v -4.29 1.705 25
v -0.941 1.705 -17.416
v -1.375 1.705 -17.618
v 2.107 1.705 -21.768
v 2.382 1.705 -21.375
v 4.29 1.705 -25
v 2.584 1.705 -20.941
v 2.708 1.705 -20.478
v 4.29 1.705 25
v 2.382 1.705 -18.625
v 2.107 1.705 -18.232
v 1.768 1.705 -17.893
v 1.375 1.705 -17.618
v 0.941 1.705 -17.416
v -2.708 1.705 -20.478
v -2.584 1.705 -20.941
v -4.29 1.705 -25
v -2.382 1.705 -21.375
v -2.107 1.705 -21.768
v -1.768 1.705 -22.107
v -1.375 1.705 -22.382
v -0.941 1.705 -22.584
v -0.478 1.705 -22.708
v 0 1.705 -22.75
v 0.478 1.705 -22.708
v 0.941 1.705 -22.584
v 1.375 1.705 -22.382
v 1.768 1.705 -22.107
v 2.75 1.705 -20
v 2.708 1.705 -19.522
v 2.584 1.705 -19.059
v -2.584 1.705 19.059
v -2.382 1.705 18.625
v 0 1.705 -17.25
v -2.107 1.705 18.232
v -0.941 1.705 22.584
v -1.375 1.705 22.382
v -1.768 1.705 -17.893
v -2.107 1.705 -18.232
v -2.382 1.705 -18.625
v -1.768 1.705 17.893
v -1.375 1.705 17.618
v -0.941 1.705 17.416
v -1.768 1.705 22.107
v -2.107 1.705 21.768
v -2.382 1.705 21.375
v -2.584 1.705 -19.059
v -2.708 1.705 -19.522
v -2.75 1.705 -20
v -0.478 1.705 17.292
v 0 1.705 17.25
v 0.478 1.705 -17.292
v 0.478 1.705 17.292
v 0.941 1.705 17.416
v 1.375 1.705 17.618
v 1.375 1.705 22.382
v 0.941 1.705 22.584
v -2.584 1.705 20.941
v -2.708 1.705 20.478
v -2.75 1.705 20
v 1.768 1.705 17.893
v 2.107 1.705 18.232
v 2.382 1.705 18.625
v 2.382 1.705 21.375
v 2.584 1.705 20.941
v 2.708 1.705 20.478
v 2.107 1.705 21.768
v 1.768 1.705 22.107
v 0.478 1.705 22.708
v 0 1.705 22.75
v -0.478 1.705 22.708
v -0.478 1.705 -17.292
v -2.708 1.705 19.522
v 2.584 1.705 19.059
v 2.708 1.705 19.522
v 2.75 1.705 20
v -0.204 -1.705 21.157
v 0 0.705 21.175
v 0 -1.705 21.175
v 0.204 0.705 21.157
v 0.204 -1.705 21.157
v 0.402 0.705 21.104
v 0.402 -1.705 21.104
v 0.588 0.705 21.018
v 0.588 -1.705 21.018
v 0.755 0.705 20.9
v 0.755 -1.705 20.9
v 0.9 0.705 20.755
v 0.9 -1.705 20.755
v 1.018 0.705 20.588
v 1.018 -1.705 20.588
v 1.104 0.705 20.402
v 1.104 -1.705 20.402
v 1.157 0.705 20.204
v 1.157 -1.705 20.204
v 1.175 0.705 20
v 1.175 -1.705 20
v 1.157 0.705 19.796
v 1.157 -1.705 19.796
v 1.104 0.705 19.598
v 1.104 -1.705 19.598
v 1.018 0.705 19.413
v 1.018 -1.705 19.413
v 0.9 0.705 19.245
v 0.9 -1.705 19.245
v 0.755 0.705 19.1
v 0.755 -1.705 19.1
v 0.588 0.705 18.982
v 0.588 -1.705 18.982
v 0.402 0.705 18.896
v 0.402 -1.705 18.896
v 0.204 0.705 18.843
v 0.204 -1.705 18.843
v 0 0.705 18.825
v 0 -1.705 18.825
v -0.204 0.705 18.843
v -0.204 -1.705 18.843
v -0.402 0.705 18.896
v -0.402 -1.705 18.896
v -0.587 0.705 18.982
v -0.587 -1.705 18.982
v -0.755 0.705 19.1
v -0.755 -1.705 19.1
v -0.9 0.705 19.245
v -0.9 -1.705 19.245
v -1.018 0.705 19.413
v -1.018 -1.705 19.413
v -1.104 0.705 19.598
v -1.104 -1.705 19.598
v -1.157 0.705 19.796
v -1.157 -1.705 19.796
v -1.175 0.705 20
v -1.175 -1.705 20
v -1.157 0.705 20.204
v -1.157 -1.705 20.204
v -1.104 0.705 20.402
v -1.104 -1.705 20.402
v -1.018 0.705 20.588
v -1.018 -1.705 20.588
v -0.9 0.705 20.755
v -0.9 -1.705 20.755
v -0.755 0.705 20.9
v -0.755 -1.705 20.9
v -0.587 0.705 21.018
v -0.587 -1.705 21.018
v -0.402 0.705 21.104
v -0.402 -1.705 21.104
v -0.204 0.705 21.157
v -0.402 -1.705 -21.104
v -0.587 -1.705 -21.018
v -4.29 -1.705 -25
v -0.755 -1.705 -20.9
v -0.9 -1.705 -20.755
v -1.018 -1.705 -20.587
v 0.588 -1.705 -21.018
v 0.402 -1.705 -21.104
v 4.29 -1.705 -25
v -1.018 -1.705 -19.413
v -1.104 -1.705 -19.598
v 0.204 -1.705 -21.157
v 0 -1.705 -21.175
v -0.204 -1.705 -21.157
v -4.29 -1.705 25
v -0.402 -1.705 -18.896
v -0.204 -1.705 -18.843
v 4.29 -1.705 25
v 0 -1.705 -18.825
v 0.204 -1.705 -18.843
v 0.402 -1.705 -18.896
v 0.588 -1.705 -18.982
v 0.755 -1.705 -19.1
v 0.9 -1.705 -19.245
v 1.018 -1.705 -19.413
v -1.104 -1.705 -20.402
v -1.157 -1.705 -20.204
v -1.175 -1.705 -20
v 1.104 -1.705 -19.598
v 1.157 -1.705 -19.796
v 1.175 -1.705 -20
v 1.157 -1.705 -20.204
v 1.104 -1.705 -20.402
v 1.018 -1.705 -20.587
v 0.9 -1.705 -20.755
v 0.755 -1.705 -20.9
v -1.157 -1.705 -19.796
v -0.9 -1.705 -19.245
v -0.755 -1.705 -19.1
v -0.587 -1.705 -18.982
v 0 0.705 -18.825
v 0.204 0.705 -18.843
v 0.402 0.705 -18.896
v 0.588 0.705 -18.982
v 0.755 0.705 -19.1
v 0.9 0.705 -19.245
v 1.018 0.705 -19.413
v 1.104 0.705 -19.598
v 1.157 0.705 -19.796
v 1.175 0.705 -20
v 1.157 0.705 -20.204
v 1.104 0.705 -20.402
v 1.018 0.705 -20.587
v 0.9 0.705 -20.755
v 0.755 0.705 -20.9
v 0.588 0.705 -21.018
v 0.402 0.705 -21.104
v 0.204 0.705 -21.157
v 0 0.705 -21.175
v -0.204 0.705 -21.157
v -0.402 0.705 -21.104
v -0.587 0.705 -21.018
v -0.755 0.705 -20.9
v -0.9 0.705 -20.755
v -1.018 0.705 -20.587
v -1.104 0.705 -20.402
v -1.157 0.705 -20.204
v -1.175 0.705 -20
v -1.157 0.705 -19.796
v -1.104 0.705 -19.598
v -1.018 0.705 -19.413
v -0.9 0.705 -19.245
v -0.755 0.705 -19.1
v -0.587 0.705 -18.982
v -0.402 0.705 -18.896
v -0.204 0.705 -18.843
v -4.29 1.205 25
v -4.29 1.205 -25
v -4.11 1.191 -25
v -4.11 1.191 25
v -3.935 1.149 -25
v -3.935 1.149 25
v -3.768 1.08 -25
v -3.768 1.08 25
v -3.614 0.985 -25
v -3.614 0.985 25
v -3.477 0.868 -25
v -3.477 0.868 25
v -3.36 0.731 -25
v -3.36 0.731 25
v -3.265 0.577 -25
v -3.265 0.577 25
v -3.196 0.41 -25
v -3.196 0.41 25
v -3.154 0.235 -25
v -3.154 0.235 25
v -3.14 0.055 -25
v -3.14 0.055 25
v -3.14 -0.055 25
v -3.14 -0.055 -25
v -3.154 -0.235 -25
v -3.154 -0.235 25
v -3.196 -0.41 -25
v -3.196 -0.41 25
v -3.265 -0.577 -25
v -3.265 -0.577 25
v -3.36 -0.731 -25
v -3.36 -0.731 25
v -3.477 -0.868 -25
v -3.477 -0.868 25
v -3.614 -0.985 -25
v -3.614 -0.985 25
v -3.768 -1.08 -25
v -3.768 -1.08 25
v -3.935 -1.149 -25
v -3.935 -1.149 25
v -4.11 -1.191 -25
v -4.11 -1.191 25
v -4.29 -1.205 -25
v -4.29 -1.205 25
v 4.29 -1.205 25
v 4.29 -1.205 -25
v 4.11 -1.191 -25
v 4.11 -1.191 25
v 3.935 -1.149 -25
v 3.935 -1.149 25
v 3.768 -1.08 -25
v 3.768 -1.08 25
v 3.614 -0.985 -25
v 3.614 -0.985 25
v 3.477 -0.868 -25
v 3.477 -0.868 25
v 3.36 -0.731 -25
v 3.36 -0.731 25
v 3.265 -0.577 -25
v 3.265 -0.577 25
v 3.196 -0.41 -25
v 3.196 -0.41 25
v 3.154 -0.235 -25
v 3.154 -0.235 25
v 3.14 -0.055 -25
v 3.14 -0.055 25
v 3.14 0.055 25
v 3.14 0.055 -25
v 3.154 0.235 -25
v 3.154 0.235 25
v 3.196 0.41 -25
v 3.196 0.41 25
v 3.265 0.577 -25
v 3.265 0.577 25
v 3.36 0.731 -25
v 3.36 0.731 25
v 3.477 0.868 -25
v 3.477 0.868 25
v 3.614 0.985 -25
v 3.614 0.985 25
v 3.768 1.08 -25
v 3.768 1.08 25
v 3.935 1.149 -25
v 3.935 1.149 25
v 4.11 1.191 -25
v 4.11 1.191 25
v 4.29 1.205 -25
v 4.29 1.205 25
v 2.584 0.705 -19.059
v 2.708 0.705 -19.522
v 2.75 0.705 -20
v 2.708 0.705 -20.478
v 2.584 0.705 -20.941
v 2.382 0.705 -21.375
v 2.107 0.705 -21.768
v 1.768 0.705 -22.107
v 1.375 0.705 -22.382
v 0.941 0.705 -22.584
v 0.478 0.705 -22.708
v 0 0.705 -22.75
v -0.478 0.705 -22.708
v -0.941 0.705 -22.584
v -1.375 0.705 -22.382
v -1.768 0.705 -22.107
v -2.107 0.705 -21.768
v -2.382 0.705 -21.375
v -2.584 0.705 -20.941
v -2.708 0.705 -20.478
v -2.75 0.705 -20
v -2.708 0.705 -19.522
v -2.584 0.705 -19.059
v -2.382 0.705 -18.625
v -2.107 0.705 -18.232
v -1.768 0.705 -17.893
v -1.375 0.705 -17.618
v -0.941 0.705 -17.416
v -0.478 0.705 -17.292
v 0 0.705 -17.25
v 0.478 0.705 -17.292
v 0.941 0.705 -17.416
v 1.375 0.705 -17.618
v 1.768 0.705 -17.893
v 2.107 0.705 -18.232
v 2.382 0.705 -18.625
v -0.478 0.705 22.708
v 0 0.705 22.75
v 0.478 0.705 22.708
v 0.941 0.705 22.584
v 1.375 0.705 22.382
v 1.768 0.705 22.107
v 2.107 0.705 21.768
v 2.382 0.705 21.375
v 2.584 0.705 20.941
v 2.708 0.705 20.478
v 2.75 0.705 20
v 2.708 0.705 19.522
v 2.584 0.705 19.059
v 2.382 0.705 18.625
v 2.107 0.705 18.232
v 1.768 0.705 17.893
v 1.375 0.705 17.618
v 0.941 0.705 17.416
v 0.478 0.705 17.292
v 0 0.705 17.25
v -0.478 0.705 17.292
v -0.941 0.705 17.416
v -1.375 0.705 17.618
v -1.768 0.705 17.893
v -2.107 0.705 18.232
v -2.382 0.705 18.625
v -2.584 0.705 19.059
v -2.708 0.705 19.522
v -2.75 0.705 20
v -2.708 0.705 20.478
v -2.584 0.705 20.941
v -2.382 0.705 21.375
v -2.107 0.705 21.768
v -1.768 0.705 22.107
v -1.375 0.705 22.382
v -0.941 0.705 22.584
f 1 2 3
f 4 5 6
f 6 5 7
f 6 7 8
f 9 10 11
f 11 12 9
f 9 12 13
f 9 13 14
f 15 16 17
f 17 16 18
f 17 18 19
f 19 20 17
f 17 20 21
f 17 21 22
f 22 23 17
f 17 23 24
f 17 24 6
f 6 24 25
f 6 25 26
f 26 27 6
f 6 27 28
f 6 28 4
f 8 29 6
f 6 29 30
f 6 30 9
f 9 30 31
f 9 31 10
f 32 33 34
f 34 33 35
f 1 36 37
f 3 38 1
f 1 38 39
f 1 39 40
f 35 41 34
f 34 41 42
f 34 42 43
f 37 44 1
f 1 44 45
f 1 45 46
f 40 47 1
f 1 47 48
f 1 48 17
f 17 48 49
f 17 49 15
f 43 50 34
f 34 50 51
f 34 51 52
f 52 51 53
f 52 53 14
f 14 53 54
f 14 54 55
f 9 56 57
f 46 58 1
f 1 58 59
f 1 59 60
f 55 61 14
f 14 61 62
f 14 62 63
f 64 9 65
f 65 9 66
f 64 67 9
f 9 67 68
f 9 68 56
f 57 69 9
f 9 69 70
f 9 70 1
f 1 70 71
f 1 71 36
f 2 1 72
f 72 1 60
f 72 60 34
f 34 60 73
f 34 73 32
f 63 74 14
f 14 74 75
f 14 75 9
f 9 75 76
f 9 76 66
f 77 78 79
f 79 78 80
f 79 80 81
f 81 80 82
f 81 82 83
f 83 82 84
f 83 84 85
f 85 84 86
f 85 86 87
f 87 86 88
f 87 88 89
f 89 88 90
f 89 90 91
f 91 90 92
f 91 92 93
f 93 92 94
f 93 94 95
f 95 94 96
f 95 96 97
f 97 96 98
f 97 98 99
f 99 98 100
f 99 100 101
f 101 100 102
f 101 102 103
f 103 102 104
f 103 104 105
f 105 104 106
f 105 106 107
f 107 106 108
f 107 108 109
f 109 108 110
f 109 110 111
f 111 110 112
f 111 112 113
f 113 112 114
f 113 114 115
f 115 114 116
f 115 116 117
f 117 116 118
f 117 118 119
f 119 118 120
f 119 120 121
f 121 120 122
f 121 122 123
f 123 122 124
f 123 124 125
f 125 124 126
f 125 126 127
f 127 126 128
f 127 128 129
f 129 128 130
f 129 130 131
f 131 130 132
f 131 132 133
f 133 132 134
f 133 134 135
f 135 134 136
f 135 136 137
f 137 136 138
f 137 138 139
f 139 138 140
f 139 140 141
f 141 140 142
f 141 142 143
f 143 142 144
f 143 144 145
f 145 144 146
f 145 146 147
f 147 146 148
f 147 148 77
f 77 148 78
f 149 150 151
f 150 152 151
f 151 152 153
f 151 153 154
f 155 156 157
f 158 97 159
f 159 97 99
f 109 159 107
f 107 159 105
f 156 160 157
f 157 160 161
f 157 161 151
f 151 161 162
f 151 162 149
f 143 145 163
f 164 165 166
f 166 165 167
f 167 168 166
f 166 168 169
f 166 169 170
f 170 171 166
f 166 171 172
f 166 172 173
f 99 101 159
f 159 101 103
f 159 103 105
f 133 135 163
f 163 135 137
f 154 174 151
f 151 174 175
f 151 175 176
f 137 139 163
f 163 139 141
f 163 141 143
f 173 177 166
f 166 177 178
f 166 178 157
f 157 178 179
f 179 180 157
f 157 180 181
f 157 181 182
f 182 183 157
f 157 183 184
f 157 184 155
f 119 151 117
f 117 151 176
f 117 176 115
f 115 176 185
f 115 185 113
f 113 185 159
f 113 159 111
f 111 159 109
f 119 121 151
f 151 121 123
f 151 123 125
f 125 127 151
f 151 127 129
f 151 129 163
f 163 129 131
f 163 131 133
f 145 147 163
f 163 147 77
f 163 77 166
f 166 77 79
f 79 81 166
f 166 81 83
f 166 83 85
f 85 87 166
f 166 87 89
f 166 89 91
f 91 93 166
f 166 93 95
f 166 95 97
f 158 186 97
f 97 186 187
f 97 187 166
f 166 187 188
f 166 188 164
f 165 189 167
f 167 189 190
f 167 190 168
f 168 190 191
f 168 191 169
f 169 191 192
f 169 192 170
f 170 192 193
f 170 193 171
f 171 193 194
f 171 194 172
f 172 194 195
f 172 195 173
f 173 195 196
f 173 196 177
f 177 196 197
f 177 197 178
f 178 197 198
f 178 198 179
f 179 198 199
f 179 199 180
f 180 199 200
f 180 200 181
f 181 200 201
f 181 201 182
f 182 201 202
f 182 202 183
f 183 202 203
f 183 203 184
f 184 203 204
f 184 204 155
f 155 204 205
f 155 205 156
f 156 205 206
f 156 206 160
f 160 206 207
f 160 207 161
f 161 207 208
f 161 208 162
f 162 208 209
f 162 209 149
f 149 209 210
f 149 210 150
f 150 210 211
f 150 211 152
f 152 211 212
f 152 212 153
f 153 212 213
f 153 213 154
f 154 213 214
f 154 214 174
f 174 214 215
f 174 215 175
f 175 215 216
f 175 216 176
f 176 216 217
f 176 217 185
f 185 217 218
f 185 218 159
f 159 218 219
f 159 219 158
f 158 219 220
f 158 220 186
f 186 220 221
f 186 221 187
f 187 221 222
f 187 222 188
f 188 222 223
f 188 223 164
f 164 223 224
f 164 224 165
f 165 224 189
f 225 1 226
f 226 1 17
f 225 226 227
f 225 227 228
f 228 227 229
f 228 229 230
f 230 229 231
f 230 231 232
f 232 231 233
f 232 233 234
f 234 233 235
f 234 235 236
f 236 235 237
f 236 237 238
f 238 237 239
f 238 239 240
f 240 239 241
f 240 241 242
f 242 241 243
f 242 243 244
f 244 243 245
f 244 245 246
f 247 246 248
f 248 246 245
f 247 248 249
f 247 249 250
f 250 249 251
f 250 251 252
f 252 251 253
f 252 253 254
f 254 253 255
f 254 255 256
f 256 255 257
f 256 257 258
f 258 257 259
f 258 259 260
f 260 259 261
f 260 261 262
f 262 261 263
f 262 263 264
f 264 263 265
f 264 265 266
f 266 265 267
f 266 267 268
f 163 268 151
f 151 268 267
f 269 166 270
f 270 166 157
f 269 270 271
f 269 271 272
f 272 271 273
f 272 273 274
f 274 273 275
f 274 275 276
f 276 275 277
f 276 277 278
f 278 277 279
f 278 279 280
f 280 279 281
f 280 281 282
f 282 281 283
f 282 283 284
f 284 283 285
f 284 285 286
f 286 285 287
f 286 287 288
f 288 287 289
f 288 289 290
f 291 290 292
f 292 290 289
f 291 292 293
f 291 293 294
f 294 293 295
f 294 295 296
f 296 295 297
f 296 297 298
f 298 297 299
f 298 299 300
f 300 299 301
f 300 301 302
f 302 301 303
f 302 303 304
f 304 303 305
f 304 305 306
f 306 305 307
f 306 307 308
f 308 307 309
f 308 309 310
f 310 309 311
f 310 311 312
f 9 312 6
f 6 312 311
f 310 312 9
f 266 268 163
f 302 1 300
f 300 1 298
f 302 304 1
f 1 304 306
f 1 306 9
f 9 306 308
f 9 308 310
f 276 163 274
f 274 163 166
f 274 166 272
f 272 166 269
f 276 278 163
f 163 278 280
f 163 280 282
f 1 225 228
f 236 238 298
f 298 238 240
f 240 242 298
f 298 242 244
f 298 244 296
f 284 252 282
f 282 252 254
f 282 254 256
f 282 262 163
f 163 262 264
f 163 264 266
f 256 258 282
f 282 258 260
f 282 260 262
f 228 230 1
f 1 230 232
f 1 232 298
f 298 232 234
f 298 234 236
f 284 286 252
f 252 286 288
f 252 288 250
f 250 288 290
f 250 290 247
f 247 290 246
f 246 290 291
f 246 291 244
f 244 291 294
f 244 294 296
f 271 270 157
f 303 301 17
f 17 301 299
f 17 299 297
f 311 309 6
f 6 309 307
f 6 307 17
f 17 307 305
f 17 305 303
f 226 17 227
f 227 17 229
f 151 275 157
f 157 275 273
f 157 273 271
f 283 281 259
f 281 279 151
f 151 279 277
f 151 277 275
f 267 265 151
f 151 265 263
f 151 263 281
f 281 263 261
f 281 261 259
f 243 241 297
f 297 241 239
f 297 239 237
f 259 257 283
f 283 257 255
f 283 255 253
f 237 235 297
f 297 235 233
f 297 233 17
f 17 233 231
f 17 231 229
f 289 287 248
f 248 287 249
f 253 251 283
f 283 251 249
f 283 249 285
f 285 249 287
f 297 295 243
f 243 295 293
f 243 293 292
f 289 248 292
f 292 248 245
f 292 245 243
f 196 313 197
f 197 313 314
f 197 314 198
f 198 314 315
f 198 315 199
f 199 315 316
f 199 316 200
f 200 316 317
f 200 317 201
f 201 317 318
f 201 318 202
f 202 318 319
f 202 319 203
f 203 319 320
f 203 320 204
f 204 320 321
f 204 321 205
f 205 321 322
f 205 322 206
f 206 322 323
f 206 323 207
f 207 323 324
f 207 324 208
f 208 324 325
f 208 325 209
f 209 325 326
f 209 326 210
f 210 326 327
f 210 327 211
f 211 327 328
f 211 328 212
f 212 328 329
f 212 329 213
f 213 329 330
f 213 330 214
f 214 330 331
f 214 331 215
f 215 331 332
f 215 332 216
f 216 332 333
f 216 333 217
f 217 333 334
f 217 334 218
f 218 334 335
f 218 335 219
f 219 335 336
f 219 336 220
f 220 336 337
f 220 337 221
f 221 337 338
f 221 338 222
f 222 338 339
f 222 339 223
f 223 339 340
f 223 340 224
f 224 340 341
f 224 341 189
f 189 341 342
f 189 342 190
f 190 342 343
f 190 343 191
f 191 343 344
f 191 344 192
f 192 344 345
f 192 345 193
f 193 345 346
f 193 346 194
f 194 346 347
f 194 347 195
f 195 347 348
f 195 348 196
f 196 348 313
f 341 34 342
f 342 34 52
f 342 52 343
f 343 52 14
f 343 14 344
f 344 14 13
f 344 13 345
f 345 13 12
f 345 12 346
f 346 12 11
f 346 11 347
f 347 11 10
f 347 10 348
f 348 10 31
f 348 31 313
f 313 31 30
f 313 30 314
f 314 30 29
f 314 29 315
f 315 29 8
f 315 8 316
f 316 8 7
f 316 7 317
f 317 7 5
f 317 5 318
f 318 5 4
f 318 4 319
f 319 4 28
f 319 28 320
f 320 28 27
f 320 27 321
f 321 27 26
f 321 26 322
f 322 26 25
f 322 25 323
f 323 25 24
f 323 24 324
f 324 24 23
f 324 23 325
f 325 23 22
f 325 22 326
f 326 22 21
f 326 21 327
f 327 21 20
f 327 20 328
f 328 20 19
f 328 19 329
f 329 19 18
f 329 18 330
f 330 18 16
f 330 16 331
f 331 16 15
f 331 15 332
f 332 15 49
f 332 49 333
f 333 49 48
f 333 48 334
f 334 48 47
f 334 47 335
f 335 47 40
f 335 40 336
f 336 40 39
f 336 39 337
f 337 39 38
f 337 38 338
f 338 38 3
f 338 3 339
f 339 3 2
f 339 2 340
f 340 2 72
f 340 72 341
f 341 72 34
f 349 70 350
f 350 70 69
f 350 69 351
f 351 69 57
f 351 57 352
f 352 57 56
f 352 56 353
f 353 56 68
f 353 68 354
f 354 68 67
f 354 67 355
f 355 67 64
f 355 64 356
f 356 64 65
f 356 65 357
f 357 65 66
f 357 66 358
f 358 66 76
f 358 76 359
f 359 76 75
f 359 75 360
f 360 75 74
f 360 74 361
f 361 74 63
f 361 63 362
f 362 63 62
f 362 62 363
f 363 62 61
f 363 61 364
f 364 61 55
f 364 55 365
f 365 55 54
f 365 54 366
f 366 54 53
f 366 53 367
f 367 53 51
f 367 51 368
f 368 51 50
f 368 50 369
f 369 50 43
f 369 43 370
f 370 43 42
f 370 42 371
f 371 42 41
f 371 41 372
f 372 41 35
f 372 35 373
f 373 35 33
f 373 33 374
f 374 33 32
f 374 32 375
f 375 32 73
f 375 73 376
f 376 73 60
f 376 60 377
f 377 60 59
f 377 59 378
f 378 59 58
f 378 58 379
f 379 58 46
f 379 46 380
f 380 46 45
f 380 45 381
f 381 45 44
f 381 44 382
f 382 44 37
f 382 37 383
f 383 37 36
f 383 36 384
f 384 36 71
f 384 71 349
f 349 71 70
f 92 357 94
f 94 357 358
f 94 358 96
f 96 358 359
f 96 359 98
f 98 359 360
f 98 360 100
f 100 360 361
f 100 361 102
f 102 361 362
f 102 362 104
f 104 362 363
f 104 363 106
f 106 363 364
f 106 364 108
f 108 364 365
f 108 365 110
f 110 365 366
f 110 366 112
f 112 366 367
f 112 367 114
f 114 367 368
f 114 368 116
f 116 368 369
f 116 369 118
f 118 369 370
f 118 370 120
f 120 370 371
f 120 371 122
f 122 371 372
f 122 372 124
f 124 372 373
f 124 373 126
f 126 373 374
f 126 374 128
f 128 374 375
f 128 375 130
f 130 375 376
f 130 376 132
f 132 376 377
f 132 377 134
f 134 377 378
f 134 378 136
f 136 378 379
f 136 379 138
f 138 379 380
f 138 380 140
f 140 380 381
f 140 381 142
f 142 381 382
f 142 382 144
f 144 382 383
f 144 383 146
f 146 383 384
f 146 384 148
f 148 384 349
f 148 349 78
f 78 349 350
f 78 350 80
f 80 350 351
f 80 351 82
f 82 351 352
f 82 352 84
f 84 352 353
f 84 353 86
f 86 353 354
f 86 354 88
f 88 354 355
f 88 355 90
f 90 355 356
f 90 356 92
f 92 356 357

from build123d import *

# Parameters (mm, degrees)
BOSS_EXTRUDE1_DEPTH = 25
SKETCH2_R           = 1.175
CUT_EXTRUDE1_DEPTH  = 4.41
SKETCH3_R           = 2.75
CUT_EXTRUDE2_DEPTH  = 1


with BuildPart() as part:
    # Sketch1 → Boss-Extrude1 (new body, symmetric)
    with BuildSketch(Plane.XY):
        with BuildLine():
            Line((-3.14, 0.055), (-3.14, -0.055))
            ThreePointArc((-3.14, -0.055), (-3.476827202, -0.868172798), (-4.29, -1.205))
            Line((-4.29, -1.205), (-4.29, -1.705))
            Line((-4.29, -1.705), (4.29, -1.705))
            Line((4.29, -1.705), (4.29, -1.205))
            ThreePointArc((4.29, -1.205), (3.476827202, -0.868172798), (3.14, -0.055))
            Line((3.14, -0.055), (3.14, 0.055))
            ThreePointArc((3.14, 0.055), (3.476827202, 0.868172798), (4.29, 1.205))
            Line((4.29, 1.205), (4.29, 1.705))
            Line((4.29, 1.705), (-4.29, 1.705))
            Line((-4.29, 1.705), (-4.29, 1.205))
            ThreePointArc((-4.29, 1.205), (-3.476827202, 0.868172798), (-3.14, 0.055))
        make_face()
    extrude(amount=BOSS_EXTRUDE1_DEPTH, both=True)

    # Sketch2 → Cut-Extrude1 (cut, through all)
    with BuildSketch(Plane(origin=(0, 1.705, 0), x_dir=(1, 0, 0), z_dir=(0, 1, 0))):
        with Locations((0, 20)):
            Circle(SKETCH2_R)
    cut_extrude1 = extrude(amount=-CUT_EXTRUDE1_DEPTH, mode=Mode.SUBTRACT)

    # Sketch3 → Cut-Extrude2 (cut)
    with BuildSketch(Plane(origin=(0, 1.705, 0), x_dir=(1, 0, 0), z_dir=(0, 1, 0))):
        with Locations((0, 20)):
            Circle(SKETCH3_R)
    cut_extrude2 = extrude(amount=-CUT_EXTRUDE2_DEPTH, mode=Mode.SUBTRACT)

    # Mirror1: Cut-Extrude1, Cut-Extrude2 across plane
    add(cut_extrude1.mirror(Plane.XY), mode=Mode.SUBTRACT)
    add(cut_extrude2.mirror(Plane.XY), mode=Mode.SUBTRACT)


solid = part.part
